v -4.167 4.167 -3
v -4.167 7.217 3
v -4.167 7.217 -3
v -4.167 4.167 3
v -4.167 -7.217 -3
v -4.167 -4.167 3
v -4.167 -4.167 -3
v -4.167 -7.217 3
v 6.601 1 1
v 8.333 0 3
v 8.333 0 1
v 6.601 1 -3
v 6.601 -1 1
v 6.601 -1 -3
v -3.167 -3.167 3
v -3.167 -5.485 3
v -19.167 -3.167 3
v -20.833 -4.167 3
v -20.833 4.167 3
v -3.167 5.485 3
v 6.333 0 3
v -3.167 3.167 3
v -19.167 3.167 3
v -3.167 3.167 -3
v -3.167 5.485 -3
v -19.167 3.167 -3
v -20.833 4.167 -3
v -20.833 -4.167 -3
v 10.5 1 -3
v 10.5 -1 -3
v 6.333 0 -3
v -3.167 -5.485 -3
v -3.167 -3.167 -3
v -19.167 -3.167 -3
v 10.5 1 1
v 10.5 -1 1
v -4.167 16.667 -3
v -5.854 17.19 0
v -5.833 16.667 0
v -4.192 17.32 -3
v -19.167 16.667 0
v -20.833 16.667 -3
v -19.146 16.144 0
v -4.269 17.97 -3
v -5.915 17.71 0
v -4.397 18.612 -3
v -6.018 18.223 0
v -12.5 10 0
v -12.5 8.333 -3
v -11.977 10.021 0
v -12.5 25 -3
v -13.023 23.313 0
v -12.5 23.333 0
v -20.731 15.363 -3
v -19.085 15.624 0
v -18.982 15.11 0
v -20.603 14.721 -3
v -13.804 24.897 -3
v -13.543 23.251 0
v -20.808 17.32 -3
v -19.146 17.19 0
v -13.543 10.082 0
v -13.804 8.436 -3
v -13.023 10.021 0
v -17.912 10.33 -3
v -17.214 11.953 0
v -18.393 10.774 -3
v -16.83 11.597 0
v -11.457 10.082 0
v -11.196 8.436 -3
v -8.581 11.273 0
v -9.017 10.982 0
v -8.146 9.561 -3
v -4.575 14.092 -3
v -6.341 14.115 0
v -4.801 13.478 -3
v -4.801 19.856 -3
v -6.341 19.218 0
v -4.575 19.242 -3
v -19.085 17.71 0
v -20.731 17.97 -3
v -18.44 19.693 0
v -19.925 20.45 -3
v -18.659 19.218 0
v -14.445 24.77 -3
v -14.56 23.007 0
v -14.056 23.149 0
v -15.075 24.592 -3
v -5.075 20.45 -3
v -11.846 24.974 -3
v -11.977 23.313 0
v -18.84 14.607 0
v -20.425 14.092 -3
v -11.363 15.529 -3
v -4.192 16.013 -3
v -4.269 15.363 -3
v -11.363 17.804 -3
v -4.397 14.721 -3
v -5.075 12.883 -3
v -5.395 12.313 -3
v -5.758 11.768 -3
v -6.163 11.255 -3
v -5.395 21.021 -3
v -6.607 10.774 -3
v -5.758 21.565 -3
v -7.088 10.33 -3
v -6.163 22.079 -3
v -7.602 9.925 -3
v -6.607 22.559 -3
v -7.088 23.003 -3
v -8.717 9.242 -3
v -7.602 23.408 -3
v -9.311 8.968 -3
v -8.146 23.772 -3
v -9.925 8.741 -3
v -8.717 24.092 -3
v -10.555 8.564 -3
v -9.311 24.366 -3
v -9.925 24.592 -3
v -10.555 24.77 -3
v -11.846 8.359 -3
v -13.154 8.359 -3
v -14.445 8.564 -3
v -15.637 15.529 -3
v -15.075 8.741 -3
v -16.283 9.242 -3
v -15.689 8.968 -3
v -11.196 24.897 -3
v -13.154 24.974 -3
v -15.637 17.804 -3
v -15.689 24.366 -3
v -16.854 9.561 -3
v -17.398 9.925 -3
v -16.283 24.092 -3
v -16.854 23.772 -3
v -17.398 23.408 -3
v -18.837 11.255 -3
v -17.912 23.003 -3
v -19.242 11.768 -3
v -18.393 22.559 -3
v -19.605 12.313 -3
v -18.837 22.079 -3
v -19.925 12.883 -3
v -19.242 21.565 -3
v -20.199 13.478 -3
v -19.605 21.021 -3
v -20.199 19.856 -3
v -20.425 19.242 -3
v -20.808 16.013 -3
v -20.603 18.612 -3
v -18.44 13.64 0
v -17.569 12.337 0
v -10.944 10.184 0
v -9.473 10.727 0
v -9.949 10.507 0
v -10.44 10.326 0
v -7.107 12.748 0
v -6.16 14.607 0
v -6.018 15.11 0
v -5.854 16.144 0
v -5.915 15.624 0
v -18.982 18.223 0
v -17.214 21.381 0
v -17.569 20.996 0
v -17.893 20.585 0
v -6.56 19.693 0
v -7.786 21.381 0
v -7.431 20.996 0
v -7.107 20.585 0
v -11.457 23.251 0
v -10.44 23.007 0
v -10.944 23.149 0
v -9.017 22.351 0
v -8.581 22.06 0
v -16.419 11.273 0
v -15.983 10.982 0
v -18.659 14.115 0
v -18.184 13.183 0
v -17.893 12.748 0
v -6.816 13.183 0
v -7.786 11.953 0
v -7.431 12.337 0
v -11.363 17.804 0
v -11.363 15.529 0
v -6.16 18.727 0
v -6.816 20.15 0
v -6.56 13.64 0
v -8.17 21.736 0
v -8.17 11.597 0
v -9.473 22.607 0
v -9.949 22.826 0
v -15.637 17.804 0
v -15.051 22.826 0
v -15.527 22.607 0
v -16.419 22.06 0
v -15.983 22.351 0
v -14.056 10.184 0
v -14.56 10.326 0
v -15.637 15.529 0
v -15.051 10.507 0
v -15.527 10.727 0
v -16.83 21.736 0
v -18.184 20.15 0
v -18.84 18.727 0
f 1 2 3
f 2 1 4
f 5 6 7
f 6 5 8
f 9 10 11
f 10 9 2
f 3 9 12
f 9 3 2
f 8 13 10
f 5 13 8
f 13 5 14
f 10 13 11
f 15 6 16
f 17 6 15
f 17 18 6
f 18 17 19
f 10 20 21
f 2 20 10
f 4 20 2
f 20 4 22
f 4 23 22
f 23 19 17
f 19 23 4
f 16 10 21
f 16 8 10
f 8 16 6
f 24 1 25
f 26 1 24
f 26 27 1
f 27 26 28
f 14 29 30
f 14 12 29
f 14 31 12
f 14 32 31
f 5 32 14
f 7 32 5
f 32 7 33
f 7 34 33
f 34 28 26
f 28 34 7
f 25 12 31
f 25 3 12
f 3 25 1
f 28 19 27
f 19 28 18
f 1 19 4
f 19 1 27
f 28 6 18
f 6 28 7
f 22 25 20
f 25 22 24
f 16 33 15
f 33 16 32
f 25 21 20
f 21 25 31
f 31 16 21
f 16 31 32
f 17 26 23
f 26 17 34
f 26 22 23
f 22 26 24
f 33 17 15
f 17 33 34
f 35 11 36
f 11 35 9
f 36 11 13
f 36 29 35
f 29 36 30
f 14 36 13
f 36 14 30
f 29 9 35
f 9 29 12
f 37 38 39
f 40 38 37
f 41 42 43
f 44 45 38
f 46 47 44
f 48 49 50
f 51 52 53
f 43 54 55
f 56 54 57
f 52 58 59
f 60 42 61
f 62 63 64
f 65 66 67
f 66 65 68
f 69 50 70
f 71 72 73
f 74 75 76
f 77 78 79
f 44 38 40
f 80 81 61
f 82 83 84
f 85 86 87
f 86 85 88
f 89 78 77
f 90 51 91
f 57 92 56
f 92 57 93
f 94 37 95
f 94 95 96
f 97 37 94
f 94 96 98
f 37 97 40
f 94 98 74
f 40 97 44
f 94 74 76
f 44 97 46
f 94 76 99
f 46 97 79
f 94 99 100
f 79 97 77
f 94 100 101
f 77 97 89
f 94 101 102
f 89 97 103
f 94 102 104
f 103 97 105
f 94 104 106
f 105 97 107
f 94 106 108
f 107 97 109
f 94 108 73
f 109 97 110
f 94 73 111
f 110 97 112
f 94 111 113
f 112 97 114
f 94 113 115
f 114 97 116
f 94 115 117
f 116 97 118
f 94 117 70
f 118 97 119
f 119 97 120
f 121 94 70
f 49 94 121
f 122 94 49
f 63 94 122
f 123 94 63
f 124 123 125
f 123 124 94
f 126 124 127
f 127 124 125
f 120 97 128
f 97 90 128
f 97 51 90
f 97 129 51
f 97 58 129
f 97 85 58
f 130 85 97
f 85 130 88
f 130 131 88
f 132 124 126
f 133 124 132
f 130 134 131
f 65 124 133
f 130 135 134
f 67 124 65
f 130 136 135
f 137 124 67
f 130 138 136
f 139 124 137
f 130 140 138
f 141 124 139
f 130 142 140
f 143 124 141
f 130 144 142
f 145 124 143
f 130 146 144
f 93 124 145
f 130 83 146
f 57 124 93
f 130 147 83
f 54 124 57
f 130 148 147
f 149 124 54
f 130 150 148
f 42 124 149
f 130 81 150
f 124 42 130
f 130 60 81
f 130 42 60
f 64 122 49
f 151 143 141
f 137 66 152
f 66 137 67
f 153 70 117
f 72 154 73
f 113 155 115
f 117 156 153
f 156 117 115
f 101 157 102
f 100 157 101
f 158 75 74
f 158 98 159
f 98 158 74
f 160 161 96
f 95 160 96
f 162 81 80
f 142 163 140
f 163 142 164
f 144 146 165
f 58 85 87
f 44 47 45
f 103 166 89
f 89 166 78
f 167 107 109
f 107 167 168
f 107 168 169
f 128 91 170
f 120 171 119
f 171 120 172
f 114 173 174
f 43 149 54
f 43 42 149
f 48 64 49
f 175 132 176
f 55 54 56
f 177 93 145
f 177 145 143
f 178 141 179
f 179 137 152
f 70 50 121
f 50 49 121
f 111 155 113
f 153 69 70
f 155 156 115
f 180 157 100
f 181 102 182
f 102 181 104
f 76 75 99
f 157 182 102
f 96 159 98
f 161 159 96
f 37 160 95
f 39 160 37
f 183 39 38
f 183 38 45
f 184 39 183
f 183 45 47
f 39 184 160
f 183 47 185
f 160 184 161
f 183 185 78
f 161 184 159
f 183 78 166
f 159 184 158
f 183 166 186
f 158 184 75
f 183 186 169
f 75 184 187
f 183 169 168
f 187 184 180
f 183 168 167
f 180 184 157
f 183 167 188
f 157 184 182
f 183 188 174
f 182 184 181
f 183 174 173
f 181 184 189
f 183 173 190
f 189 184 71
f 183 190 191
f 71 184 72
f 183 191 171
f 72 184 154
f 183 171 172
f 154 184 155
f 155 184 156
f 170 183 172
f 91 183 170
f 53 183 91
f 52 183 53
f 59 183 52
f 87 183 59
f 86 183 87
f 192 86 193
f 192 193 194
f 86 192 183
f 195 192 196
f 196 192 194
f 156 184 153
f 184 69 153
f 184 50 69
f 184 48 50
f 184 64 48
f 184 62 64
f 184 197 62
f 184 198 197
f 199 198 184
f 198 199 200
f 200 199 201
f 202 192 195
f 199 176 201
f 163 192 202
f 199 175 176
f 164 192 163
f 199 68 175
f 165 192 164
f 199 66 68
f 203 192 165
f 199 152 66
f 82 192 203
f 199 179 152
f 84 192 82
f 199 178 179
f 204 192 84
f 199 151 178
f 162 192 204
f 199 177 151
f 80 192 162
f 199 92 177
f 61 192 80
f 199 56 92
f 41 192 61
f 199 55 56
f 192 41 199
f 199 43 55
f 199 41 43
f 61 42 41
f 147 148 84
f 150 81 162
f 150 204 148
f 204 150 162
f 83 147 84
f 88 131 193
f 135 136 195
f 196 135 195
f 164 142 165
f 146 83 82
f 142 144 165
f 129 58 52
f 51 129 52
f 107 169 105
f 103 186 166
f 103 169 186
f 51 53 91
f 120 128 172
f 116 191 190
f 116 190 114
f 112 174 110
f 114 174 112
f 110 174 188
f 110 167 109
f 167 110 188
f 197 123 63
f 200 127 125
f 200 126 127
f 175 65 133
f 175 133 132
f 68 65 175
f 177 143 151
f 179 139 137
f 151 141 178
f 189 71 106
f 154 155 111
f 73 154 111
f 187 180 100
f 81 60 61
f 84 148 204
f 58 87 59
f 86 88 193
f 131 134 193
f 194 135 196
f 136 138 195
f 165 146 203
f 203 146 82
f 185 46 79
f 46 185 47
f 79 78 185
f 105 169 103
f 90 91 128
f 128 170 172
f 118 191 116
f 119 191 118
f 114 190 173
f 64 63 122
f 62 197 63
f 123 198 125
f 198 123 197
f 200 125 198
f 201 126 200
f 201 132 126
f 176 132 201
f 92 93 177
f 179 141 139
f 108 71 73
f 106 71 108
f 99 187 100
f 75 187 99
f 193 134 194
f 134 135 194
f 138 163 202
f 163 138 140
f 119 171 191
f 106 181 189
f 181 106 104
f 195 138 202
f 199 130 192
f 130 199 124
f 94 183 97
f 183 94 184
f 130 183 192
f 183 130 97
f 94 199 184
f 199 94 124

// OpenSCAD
height = 25;
width = height/3;
thickness = 6;

module arrow(height, width, thickness) {
cylinder(h=thickness, r=width, center=true, $fn=3);
translate([-height/2+0.5,0,0]) cube([height*2/3+1, width, thickness], center=true);
}


module base(width, thickness) {
    difference() {
        cylinder(h=thickness/2, r1=width, r2=width*0.8, center=true, $fn=80);
        translate([-thickness/3/2, 0,0]) cube([4.275,2.275,width+1],center=true);    }
}

wall = 2;

difference() {
  union() {
    arrow(height, width, thickness);
    translate([height/2-4,0,-thickness/3/2]) cube([4,2,thickness*2/3],center=true);
  }
arrow(height-wall, width-wall, thickness+1);
}

translate([-width*1.5, width*2, -thickness/4]) base(width, thickness);
